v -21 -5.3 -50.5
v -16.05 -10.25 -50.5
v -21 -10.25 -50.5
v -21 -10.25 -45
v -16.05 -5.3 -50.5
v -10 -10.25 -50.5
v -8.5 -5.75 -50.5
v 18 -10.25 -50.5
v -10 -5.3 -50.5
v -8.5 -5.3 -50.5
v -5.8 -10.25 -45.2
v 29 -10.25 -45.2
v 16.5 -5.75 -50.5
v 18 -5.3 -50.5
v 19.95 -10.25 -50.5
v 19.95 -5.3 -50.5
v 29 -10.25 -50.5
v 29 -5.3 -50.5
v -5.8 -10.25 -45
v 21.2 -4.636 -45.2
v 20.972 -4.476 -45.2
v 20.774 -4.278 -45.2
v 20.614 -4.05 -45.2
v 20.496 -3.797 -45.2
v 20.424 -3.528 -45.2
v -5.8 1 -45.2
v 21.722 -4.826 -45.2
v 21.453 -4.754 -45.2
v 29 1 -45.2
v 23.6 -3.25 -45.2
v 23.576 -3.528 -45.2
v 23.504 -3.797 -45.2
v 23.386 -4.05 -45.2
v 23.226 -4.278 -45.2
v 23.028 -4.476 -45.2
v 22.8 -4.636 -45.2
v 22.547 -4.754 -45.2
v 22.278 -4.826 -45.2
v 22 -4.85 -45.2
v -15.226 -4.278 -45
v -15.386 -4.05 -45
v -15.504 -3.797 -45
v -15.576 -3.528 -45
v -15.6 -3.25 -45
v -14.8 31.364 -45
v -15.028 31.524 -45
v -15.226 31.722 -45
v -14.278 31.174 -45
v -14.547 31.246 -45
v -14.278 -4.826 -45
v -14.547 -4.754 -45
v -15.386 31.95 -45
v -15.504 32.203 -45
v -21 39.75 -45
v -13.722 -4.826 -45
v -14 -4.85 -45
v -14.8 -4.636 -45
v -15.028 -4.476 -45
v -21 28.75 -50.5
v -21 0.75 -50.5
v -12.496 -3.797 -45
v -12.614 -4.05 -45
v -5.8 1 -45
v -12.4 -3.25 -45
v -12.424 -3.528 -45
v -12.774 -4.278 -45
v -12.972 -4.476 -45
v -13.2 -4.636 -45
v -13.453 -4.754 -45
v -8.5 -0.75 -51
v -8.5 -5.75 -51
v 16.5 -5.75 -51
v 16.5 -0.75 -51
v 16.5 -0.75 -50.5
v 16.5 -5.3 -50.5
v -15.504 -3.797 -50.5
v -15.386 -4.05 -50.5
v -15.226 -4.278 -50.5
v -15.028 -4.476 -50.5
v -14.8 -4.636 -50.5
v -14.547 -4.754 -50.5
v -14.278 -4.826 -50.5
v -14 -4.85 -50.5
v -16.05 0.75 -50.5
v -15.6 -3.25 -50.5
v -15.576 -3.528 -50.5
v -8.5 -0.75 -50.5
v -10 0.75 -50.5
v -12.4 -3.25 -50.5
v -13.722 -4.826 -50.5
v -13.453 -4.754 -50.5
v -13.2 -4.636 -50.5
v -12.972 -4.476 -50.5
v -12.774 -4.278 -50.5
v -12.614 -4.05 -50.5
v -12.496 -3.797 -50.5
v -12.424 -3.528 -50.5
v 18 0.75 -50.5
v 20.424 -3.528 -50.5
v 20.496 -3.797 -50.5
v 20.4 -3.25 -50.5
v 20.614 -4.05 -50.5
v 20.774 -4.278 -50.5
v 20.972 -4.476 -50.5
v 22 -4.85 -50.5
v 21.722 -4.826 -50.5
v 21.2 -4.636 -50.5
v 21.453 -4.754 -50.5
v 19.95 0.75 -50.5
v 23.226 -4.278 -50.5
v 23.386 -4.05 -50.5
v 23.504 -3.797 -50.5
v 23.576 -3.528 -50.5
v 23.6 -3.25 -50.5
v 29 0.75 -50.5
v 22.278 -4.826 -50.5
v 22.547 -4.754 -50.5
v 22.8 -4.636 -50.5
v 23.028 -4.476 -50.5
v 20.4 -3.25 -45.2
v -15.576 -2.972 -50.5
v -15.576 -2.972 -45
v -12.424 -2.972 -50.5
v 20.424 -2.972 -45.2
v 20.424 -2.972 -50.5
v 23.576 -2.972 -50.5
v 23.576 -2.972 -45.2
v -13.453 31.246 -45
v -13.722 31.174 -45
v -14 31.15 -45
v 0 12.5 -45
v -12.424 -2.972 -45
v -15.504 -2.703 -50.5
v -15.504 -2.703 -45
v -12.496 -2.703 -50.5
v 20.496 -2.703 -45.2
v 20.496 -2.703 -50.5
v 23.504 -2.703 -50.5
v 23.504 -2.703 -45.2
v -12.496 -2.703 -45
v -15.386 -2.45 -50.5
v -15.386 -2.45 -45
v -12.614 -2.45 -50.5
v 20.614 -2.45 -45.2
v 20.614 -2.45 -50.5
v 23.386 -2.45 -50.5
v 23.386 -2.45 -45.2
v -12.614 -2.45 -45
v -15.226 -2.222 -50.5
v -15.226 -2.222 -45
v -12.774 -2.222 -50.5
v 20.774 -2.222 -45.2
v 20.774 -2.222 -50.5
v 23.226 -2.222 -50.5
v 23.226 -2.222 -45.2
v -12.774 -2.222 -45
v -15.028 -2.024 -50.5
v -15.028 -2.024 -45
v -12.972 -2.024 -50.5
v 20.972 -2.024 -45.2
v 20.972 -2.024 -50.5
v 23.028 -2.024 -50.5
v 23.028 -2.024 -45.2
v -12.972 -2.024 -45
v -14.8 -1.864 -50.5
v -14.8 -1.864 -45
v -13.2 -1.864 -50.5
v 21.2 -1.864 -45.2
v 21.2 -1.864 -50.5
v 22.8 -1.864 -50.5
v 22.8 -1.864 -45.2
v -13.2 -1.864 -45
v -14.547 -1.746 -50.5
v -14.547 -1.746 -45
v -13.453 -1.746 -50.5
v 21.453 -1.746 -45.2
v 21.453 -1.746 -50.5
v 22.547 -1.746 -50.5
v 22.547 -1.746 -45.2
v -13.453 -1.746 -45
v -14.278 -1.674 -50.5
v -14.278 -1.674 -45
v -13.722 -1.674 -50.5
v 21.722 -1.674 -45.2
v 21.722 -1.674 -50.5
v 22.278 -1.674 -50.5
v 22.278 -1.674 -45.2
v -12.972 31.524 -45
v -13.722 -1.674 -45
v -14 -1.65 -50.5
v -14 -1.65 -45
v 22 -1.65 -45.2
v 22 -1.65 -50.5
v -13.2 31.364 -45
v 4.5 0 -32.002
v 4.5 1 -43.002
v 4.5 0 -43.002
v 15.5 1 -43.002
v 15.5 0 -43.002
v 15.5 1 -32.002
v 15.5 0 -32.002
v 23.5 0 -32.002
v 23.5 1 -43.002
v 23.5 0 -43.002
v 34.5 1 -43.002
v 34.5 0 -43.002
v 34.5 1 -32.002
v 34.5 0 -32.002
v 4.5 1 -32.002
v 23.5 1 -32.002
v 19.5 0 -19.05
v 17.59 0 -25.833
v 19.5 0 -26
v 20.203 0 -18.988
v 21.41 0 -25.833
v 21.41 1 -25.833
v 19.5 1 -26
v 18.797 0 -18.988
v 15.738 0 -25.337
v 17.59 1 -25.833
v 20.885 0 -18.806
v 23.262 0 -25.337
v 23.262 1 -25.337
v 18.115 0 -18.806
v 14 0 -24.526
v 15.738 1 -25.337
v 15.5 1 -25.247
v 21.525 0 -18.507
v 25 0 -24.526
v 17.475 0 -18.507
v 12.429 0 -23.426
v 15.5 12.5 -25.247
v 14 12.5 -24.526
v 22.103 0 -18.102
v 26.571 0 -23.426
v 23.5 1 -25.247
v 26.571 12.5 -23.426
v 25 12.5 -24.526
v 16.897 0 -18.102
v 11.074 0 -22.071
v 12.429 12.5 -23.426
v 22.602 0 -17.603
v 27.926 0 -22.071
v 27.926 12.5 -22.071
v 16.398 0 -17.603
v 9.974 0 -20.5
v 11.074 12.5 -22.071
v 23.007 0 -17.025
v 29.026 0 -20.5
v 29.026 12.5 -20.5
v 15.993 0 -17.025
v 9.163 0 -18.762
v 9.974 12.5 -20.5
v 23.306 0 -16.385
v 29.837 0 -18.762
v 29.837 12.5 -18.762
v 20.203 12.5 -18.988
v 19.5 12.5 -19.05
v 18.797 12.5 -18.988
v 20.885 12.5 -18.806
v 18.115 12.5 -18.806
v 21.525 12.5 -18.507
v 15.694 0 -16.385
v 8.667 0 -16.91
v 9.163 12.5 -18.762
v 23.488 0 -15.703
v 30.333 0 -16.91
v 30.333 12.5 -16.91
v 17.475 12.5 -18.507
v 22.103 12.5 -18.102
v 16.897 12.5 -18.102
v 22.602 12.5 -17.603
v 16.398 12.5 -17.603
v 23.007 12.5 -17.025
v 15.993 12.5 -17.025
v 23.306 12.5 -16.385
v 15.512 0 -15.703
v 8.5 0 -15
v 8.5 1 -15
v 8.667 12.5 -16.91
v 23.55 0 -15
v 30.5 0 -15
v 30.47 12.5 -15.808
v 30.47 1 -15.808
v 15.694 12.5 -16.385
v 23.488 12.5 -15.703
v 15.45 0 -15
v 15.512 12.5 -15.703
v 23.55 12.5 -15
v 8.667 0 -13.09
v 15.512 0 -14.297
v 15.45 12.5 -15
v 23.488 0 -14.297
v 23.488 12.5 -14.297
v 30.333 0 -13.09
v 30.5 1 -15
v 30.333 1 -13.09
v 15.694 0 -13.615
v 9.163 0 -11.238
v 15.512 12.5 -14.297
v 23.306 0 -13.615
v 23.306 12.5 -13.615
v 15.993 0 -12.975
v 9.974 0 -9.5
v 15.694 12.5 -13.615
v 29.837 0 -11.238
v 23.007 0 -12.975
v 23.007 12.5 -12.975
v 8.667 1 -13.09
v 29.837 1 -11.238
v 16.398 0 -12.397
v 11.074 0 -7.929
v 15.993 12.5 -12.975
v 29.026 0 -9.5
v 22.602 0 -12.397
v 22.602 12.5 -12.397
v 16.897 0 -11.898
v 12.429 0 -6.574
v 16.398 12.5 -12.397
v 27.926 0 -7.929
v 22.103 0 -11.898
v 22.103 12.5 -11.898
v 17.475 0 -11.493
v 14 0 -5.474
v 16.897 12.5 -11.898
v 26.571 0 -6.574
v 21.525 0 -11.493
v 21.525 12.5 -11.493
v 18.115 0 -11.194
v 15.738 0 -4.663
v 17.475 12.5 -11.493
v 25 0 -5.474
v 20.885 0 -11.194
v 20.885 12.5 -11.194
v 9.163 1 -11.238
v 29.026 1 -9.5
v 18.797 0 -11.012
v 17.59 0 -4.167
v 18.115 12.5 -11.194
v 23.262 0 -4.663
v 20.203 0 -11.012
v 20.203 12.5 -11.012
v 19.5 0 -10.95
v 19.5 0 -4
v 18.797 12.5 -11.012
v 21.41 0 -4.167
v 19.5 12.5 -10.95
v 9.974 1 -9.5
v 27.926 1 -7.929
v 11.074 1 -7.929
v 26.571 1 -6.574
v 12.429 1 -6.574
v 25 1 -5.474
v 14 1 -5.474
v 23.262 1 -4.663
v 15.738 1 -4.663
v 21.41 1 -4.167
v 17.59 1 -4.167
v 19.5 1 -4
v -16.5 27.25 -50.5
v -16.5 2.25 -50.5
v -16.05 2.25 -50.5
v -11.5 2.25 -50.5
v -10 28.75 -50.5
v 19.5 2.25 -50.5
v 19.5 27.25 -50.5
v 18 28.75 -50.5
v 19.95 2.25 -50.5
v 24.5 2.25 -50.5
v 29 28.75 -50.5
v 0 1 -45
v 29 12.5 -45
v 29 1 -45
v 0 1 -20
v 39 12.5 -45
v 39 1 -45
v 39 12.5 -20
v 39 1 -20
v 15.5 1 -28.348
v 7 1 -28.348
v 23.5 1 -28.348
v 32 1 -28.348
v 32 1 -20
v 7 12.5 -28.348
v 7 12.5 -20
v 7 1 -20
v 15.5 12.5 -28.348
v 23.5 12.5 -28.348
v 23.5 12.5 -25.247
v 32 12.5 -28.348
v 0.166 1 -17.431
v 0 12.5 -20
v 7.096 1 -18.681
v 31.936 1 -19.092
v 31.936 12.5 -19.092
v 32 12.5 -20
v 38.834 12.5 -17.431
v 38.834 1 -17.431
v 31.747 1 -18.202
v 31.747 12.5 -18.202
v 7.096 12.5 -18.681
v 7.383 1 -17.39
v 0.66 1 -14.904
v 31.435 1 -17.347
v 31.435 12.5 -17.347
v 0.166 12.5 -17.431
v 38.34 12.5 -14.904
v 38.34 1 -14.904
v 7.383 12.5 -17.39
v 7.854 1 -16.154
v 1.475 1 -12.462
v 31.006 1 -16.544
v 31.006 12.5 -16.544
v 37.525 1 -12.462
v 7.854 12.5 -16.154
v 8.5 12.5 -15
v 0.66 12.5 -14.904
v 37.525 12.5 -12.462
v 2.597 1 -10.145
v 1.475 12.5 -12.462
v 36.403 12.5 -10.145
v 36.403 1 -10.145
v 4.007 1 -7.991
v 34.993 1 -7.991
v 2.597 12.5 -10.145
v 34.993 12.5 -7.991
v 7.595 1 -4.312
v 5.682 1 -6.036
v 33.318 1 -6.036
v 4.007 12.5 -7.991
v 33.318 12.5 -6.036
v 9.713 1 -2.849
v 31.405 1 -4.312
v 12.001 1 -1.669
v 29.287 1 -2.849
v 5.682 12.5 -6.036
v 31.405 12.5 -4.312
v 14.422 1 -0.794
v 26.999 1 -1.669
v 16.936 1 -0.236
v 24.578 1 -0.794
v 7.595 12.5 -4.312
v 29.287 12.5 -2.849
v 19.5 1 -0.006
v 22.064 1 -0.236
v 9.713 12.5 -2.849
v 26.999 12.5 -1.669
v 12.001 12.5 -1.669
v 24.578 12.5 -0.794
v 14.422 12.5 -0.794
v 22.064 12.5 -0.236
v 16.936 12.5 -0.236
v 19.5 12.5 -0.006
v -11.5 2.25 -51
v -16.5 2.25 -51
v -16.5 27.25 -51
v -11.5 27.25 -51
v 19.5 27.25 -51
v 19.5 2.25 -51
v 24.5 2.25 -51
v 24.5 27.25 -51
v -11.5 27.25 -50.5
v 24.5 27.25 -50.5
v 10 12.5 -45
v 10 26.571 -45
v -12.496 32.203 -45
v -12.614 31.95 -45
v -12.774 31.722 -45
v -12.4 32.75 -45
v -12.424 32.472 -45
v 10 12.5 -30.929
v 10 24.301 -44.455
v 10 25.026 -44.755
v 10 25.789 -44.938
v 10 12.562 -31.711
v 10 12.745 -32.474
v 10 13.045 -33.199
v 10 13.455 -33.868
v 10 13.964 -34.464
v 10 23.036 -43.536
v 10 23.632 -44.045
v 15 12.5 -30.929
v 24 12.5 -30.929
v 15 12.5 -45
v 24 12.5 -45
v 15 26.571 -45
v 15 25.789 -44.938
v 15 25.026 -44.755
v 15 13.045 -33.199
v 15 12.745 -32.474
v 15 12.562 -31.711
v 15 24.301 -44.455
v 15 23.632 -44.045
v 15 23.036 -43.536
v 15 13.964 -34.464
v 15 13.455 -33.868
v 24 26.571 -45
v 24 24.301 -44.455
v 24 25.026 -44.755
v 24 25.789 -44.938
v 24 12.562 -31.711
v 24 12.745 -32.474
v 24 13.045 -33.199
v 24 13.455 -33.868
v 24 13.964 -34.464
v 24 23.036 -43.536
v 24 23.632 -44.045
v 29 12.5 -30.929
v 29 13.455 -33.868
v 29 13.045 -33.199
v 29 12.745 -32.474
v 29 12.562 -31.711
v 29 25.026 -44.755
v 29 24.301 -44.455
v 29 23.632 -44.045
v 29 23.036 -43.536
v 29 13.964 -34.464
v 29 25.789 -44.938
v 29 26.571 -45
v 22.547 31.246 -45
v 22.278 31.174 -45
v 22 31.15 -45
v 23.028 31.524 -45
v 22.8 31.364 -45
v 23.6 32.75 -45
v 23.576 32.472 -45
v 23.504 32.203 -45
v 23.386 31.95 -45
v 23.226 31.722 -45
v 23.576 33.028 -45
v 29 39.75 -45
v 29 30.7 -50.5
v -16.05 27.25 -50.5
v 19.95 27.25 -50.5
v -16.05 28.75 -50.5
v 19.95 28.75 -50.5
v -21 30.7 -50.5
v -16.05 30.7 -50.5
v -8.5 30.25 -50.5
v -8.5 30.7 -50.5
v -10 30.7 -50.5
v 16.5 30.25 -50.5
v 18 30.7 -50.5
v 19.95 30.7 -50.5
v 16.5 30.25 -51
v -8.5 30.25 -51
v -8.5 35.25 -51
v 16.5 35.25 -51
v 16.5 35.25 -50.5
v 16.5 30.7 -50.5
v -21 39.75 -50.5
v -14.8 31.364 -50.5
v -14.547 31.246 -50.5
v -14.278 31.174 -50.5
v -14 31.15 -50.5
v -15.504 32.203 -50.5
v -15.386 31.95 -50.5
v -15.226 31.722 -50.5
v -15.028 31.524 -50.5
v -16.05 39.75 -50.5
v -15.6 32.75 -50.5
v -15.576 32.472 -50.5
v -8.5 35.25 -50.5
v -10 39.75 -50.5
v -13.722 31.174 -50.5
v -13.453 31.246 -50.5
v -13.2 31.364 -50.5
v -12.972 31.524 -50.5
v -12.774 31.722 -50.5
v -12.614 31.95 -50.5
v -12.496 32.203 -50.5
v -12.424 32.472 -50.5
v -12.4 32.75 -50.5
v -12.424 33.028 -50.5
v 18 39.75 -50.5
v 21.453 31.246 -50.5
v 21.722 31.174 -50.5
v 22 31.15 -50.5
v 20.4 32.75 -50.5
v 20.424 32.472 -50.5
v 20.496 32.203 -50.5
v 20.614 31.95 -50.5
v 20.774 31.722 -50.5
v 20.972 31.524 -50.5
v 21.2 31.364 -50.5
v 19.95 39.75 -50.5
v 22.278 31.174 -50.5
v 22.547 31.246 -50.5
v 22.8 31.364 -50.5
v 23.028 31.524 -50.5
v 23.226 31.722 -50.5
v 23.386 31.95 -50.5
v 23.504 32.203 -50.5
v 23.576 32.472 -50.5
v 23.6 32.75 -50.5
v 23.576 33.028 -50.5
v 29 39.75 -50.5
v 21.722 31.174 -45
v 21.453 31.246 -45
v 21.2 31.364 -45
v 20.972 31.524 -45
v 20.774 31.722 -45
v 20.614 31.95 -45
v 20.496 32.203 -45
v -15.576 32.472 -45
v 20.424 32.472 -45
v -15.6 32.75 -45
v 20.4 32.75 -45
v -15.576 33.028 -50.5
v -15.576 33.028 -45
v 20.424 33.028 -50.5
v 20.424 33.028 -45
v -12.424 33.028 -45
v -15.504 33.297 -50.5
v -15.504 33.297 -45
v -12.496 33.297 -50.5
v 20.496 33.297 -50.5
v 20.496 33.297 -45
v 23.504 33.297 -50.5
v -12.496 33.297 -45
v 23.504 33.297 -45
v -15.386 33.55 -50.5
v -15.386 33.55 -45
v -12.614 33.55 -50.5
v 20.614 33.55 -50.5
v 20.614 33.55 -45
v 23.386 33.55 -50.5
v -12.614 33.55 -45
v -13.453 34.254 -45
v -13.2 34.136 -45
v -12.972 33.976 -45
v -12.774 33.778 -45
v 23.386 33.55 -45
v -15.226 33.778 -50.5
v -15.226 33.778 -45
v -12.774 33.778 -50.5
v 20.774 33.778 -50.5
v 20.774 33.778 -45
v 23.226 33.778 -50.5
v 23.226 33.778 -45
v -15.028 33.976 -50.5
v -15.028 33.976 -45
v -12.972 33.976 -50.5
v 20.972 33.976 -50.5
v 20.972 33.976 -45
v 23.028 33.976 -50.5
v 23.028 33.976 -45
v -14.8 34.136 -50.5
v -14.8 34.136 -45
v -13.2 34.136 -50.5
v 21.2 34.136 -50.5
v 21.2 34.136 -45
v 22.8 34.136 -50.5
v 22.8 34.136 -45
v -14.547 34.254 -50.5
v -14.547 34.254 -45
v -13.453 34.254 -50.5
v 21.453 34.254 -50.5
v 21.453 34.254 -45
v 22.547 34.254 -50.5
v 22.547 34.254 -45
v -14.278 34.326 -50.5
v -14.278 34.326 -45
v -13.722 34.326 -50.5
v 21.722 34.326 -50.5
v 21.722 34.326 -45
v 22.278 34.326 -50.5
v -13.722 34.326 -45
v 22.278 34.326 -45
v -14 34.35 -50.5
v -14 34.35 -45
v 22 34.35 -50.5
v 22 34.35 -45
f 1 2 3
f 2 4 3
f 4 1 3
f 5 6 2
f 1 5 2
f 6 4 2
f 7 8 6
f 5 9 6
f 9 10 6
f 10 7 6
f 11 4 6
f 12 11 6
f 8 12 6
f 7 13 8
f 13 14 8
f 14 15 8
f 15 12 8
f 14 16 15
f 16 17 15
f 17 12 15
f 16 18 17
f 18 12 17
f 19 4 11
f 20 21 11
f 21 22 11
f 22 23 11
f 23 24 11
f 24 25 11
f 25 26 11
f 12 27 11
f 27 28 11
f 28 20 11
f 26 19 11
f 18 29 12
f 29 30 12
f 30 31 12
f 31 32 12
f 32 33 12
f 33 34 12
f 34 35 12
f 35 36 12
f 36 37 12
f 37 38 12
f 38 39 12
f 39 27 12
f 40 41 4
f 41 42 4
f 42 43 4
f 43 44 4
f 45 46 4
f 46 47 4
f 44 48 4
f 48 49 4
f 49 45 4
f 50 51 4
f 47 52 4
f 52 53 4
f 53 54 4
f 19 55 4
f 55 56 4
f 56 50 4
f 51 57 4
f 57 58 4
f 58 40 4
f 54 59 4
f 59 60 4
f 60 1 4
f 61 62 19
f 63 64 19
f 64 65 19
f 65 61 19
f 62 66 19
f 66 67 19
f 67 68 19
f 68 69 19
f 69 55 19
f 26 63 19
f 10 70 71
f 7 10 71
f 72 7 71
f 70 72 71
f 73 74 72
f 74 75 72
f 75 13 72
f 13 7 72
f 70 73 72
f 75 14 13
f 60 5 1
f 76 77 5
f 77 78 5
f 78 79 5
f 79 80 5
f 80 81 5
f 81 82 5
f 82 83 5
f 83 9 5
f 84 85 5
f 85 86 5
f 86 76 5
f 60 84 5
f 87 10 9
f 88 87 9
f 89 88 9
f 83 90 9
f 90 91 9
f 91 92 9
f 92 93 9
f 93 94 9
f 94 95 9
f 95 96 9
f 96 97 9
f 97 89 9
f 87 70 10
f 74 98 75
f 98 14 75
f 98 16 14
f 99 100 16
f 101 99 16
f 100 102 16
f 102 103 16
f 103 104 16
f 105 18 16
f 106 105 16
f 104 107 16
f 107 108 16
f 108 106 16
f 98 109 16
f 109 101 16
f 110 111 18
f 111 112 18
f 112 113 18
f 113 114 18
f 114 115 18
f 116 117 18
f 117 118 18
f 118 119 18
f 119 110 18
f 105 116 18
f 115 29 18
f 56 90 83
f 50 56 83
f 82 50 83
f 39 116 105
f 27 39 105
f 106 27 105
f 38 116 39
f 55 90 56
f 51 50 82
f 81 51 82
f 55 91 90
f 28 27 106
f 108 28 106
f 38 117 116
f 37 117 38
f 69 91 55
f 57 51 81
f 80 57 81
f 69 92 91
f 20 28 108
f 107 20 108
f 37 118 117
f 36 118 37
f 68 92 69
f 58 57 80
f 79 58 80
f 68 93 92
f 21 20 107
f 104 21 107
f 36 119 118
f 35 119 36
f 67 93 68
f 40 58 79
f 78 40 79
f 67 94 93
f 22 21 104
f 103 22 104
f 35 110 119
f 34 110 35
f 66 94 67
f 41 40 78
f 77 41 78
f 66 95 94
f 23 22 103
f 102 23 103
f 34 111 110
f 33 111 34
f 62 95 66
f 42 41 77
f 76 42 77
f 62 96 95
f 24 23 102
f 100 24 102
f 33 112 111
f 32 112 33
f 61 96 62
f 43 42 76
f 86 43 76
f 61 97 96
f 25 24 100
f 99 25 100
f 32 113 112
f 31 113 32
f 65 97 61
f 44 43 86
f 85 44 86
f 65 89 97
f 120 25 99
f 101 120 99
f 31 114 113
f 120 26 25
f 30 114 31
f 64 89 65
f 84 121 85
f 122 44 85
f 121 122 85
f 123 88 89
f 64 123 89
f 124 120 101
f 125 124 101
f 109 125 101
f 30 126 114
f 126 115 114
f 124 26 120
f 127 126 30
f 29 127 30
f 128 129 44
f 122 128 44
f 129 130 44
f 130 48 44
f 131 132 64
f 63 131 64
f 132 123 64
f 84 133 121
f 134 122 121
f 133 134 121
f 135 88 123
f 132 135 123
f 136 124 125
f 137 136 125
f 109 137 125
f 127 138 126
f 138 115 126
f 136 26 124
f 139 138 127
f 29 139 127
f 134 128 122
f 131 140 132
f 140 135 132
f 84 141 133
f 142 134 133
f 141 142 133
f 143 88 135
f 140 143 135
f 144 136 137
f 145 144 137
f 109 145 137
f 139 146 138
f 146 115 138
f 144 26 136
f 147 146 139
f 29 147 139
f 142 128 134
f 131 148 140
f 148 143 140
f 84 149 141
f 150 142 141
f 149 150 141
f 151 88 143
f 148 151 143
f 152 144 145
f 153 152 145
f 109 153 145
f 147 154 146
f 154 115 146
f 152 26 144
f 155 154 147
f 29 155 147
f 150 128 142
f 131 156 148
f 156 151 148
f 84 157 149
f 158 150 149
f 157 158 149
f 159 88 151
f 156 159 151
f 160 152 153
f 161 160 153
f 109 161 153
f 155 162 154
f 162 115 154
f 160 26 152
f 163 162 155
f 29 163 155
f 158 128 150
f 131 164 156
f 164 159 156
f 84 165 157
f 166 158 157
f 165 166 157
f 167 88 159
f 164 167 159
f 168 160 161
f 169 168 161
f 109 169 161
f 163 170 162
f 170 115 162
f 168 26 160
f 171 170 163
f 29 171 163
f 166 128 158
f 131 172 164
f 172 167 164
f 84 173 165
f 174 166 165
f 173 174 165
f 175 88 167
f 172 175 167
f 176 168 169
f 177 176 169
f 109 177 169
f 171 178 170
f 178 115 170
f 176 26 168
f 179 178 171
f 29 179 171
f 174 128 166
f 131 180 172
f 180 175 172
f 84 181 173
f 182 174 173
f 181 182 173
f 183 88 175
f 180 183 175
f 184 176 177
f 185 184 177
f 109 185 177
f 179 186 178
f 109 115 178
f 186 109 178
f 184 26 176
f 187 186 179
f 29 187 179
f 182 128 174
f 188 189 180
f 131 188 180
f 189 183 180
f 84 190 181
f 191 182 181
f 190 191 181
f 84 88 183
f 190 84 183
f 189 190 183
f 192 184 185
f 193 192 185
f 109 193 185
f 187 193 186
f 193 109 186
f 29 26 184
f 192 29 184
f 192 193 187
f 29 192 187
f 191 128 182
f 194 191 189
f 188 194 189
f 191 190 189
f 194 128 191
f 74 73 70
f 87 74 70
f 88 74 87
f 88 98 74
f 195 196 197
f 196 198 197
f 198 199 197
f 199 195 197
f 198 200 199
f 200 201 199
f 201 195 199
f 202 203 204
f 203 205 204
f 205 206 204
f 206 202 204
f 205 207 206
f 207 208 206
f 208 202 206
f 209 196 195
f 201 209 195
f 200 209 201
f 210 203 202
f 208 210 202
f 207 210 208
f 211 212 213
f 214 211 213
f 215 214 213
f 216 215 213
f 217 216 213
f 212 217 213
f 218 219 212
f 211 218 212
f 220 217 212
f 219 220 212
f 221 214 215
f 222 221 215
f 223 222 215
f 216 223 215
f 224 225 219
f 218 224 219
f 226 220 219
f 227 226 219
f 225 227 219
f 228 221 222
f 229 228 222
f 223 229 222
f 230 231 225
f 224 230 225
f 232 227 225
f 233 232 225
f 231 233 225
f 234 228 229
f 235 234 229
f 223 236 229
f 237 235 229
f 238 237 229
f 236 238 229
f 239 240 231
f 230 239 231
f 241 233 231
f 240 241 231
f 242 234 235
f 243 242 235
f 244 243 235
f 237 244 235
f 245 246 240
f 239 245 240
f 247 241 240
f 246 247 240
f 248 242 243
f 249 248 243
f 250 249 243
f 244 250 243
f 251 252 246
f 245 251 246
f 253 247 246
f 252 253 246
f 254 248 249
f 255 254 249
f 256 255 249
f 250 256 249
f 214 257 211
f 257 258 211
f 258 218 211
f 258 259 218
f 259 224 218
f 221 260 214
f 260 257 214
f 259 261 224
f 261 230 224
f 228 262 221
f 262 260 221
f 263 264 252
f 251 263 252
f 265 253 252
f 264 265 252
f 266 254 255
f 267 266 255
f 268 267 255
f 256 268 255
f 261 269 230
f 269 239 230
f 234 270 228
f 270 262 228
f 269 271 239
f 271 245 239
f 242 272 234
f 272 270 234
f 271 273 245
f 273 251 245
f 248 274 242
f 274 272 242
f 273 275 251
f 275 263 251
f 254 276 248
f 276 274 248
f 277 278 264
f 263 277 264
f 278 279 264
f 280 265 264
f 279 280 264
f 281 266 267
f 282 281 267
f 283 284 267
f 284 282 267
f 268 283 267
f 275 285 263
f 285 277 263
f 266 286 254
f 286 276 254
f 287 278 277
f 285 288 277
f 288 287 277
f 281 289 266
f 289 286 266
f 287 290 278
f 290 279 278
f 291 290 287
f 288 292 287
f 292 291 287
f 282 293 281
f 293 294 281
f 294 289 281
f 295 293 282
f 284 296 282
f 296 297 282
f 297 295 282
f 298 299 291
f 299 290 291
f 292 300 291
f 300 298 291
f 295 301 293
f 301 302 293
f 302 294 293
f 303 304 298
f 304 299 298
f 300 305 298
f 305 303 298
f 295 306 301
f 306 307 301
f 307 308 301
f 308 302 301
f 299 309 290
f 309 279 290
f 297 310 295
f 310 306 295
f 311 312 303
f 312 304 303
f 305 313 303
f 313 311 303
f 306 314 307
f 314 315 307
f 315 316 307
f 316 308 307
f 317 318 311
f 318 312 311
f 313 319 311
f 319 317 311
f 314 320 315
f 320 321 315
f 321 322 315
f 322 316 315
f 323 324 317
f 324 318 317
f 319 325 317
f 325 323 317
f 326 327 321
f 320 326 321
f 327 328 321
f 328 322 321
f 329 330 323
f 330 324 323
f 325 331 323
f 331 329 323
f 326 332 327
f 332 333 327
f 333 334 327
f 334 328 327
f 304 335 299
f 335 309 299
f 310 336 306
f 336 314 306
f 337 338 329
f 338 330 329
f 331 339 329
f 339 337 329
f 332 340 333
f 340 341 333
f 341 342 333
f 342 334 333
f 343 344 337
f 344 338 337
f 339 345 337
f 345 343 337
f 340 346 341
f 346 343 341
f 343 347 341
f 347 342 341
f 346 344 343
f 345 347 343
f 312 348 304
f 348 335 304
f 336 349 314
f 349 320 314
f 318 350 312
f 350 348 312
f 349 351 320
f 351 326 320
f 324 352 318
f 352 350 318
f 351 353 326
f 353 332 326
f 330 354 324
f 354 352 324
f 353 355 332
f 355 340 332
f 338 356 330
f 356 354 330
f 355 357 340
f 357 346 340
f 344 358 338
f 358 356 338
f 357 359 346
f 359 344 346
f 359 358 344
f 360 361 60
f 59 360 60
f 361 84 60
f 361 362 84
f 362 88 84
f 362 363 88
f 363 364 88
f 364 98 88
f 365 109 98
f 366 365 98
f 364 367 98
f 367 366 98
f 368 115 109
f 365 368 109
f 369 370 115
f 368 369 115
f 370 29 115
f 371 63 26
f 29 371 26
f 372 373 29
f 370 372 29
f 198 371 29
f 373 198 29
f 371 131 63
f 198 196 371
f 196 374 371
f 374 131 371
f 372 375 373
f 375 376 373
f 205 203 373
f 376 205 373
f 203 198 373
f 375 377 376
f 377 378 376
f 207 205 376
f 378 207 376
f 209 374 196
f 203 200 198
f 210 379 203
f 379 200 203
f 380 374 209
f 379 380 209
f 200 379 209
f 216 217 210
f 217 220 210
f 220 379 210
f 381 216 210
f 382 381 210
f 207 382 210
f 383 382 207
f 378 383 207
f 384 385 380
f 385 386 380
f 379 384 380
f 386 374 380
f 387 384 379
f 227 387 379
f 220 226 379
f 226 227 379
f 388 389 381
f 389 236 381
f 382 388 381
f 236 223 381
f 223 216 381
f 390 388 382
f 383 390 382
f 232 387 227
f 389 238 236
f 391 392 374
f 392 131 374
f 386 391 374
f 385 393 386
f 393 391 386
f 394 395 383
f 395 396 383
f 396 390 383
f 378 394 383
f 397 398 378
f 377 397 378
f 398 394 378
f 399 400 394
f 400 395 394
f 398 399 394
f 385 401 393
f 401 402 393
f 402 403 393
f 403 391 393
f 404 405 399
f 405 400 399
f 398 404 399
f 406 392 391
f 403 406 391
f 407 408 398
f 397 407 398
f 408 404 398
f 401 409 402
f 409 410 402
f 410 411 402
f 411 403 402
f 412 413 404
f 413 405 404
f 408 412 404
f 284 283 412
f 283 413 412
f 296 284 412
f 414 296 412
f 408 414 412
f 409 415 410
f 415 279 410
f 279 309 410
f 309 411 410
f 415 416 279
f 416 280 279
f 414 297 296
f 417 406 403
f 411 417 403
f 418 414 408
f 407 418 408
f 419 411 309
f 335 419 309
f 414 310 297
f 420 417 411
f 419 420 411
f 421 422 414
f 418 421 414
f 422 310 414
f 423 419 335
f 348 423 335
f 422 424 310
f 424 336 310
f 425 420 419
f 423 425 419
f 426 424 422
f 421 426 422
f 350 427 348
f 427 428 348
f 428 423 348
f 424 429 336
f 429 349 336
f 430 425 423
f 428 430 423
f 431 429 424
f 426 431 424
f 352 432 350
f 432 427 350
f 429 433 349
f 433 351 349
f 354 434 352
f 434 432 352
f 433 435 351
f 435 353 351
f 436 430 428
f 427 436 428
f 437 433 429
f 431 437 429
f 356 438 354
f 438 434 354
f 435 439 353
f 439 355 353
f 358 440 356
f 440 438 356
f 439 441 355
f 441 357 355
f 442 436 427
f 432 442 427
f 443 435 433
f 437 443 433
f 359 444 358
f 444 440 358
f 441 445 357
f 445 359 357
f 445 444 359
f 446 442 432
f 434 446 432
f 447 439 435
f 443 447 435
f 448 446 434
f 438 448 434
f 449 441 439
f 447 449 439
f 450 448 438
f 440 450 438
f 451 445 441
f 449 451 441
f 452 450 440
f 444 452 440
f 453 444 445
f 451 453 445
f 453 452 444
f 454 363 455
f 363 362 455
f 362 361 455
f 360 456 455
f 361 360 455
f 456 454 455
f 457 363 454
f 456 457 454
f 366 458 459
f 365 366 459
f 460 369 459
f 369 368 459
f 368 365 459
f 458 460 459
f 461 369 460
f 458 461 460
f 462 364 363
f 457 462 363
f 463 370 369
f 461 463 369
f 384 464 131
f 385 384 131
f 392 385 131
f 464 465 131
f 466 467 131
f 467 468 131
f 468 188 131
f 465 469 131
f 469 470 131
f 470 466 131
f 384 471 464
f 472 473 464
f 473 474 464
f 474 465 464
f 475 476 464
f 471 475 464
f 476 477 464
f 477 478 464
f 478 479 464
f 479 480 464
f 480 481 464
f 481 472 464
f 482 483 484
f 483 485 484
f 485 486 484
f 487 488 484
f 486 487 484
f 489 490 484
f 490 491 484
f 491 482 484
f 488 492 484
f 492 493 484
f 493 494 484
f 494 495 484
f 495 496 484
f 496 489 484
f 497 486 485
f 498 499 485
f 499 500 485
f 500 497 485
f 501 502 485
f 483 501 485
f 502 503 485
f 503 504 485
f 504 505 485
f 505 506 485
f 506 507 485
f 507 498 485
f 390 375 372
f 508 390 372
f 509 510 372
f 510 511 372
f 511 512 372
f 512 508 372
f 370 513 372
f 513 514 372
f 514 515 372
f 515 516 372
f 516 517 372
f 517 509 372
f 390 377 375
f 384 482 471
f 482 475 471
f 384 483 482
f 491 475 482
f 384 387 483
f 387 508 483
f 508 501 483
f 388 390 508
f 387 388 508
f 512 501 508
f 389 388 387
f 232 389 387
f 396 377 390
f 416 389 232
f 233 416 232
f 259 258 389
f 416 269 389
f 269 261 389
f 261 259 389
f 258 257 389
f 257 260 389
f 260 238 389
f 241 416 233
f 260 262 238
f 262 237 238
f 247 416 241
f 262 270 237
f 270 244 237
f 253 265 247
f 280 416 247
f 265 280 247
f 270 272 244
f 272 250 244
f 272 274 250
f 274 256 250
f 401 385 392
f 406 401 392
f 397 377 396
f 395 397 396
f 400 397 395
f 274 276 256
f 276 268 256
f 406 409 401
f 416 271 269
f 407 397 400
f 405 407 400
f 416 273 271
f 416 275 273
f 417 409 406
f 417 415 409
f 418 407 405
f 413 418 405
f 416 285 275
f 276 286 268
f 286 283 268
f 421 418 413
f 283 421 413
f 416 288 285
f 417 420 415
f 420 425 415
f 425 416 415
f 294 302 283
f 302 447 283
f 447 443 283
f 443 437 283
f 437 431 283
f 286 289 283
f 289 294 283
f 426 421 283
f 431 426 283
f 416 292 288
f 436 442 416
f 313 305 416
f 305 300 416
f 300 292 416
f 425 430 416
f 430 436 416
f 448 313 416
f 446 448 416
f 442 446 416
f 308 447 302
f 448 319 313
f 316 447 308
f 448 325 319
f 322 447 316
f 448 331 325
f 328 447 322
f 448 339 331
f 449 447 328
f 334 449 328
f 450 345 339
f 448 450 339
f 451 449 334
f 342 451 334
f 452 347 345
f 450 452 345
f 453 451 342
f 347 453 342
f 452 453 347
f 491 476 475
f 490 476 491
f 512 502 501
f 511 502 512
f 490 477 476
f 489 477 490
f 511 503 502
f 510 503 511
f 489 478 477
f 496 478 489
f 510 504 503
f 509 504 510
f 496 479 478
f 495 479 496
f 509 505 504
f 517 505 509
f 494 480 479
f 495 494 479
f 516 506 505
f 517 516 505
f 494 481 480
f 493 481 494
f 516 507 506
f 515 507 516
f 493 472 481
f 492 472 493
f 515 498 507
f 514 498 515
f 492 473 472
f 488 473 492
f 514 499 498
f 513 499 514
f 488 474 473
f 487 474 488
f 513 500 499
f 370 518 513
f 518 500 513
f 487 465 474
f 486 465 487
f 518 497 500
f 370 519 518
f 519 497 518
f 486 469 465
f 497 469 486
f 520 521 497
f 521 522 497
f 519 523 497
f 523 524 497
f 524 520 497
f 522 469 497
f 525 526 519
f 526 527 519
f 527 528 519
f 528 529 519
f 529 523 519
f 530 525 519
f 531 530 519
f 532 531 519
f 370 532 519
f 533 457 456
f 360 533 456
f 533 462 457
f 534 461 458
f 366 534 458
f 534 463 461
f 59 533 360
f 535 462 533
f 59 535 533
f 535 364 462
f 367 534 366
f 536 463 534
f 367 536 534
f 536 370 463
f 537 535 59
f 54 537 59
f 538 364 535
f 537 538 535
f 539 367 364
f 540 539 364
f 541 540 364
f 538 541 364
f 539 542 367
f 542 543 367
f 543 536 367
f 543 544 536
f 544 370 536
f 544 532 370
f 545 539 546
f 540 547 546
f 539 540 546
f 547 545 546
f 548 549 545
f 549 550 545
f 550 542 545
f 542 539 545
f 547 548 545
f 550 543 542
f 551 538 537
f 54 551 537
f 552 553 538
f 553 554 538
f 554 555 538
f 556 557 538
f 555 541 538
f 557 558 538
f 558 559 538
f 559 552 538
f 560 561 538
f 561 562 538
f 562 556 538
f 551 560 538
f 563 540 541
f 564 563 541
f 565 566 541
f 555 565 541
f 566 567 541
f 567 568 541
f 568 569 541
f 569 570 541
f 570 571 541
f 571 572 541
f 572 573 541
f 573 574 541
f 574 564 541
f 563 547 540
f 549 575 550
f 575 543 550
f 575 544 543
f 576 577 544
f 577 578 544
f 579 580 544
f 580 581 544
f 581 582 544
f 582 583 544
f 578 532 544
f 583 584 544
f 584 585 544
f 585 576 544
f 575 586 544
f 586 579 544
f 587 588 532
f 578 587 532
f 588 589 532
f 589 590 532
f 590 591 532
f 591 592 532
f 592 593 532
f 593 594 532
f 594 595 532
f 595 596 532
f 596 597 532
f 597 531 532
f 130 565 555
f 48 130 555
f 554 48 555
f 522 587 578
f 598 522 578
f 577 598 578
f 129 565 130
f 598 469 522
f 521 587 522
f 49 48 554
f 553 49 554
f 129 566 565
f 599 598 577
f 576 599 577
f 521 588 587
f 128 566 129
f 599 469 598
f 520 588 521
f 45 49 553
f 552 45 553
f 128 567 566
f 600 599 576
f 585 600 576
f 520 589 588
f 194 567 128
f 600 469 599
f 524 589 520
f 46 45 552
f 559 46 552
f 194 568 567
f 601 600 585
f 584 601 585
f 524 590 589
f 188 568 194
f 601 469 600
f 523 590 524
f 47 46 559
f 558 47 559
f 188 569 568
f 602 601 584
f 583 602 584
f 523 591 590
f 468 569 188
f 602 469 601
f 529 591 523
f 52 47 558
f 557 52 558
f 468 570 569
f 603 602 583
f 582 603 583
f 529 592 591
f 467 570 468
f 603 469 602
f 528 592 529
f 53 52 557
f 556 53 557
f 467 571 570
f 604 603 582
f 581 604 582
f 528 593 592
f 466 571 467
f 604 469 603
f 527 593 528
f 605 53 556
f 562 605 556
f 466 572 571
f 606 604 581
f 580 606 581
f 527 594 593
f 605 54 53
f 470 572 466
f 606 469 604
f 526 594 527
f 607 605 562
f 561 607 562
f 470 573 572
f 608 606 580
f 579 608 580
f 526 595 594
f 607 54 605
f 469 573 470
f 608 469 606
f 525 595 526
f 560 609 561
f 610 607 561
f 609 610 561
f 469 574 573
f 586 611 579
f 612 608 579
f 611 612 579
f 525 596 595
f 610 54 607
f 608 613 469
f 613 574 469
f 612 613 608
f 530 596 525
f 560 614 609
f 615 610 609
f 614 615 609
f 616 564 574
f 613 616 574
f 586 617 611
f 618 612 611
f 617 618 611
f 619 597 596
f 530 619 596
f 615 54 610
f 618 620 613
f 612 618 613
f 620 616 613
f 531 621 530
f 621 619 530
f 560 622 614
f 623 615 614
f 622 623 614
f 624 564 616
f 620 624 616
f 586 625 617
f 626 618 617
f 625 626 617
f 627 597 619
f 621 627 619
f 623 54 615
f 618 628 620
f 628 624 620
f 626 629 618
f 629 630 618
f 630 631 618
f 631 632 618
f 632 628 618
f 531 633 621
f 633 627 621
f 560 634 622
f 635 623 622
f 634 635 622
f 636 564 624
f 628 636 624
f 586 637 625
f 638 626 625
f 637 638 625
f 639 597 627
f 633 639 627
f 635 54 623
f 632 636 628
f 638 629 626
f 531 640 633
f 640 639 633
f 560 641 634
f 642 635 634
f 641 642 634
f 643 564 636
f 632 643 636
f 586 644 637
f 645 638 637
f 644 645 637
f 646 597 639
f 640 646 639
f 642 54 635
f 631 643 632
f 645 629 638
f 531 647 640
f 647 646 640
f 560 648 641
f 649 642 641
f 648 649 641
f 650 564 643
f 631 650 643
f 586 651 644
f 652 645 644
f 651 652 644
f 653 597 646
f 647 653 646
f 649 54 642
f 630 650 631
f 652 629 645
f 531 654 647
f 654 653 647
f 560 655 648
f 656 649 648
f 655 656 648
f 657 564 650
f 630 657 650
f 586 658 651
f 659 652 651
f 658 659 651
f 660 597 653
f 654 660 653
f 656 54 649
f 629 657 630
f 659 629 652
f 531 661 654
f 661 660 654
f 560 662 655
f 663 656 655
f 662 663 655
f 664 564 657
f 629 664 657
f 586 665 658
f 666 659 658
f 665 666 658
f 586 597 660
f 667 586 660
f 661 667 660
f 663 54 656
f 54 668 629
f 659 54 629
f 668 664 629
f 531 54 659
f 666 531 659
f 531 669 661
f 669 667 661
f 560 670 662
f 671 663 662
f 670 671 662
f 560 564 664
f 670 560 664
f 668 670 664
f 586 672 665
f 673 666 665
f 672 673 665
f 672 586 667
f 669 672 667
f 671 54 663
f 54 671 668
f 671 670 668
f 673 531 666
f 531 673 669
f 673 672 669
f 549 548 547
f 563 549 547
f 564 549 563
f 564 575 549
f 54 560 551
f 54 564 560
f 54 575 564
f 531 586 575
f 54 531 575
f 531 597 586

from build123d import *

# Parameters (mm, degrees)
SKETCH1_W           = 39
SKETCH1_H           = 45
BOSS_EXTRUDE1_DEPTH = 12.5
SKETCH2_R           = 4.05
CUT_EXTRUDE1_DEPTH  = 61.846117378
SKETCH3_W           = 50
SKETCH3_H           = 50
BOSS_EXTRUDE2_DEPTH = 5.5
BOSS_EXTRUDE3_START = -10
BOSS_EXTRUDE3_DEPTH = 5
LPATTERN1_COUNT     = 2
LPATTERN1_PITCH     = 14
FILLET1_R           = 5
SKETCH5_R           = 1.6
CUT_EXTRUDE2_DEPTH  = 76.175212005
FILLET2_R           = 20
CUT_EXTRUDE3_DEPTH  = 70.381643826
CUT_EXTRUDE4_START  = -1
SKETCH7_W           = 39
SKETCH7_H           = 50.063664736
SKETCH7_R           = 11
SKETCH7_W_2         = 11
SKETCH7_H_2         = 11
CUT_EXTRUDE4_DEPTH  = 1
SKETCH8_W           = 25
SKETCH8_H           = 5
SKETCH8_W_2         = 5
SKETCH8_H_2         = 25
BOSS_EXTRUDE4_DEPTH = 0.5
SKETCH9_W           = 34.8
SKETCH9_H           = 11.25
CUT_EXTRUDE5_DEPTH  = 0.2


with BuildPart() as part:
    # Sketch1 → Boss-Extrude1 (new body)
    with BuildSketch(Plane(origin=(0, 0, 0), x_dir=(1, 0, 0), z_dir=(0, 1, 0))):
        with Locations((19.5, 22.5)):
            Rectangle(SKETCH1_W, SKETCH1_H)
    extrude(amount=BOSS_EXTRUDE1_DEPTH)

    # Sketch2 → Cut-Extrude1 (cut, through all)
    with BuildSketch(Plane(origin=(0, 12.5, 0), x_dir=(1, 0, 0), z_dir=(0, 1, 0))):
        with Locations(Location((19.5, 15, 0), (0, 0, 270))):
            Circle(SKETCH2_R)
    extrude(amount=-CUT_EXTRUDE1_DEPTH, mode=Mode.SUBTRACT)

    # Sketch3 → Boss-Extrude2 (add)
    with BuildSketch(Plane(origin=(0, 0, -45), x_dir=(-1, 0, 0), z_dir=(0, 0, -1))):
        with Locations((-4, 14.75)):
            Rectangle(SKETCH3_W, SKETCH3_H)
    extrude(amount=BOSS_EXTRUDE2_DEPTH)

    # Sketch4 → Boss-Extrude3 (add)
    with BuildSketch(Plane(origin=(39, 0, 0), x_dir=(0, 0, -1), z_dir=(1, 0, 0)).offset(BOSS_EXTRUDE3_START)):
        Polygon((33, 12.5), (45, 24.5), (45, 12.5), align=None)
    boss_extrude3 = extrude(amount=-BOSS_EXTRUDE3_DEPTH)

    # LPattern1: Boss-Extrude3 ×2
    with Locations(*[(-i * LPATTERN1_PITCH, 0, 0) for i in range(1, LPATTERN1_COUNT)]):
        add(boss_extrude3)

    # Fillet1
    fillet1_edges = [part.edges().sort_by_distance(p)[0] for p in [
        (26.5, 12.5, -33),
        (26.5, 24.5, -45),
        (12.5, 12.5, -33),
        (12.5, 24.5, -45),
    ]]
    fillet(fillet1_edges, radius=FILLET1_R)

    # Sketch5 → Cut-Extrude2 (cut, through all)
    with BuildSketch(Plane(origin=(0, 0, -50.5), x_dir=(-1, 0, 0), z_dir=(0, 0, -1))):
        with Locations((-22, 32.75)):
            Circle(SKETCH5_R)
        with Locations((14, 32.75)):
            Circle(SKETCH5_R)
        with Locations((14, -3.25)):
            Circle(SKETCH5_R)
        with Locations((-22, -3.25)):
            Circle(SKETCH5_R)
    extrude(amount=-CUT_EXTRUDE2_DEPTH, mode=Mode.SUBTRACT)

    # Fillet2
    # the kernel refuses this fillet: 20 mm, written as the material it takes off along each edge
    with BuildSketch(Plane(origin=(0, -50, 0), x_dir=(0, 0, -1), z_dir=(0, 1, 0)), Plane(origin=(39, -50, 0), x_dir=(-1, 0, 0), z_dir=(0, 1, 0))) as fillet2_piece_1:
        with BuildLine():
            CenterArc((FILLET2_R, -FILLET2_R), FILLET2_R, 90, 90)
            Line((0, -FILLET2_R), (0, 0))
            Line((0, 0), (FILLET2_R, 0))
        make_face()
    extrude(amount=112.5, mode=Mode.SUBTRACT)

    # Sketch6 → Cut-Extrude3 (cut, through all)
    with BuildSketch(Plane(origin=(0, 12.5, 0), x_dir=(1, 0, 0), z_dir=(0, 1, 0))):
        with BuildLine():
            Line((7, 20), (7, 28.347560338))
            Line((7, 28.347560338), (15.5, 28.347560338))
            Line((15.5, 28.347560338), (15.5, 25.246950766))
            ThreePointArc((15.5, 25.246950766), (10.417048938, 21.204836823), (8.5, 15))
            ThreePointArc((8.5, 15), (7.383077909, 17.389923373), (7, 20))
        make_face()
        with BuildLine():
            Line((23.5, 25.246950766), (23.5, 28.347560338))
            Line((23.5, 28.347560338), (32, 28.347560338))
            Line((32, 28.347560338), (32, 20))
            ThreePointArc((32, 20), (31.605614865, 17.768951725), (30.47026085, 15.808317311))
            ThreePointArc((30.47026085, 15.808317311), (28.348679441, 21.534590434), (23.5, 25.246950766))
        make_face()
    extrude(amount=-CUT_EXTRUDE3_DEPTH, mode=Mode.SUBTRACT)

    # Sketch7 → Cut-Extrude4 (cut)
    with BuildSketch(Plane.XZ.offset(CUT_EXTRUDE4_START)):
        with Locations((19.5, -19.968167632)):
            Rectangle(SKETCH7_W, SKETCH7_H)
        with Locations(Location((19.5, -15, 0), (0, 0, 180))):
            Circle(SKETCH7_R, mode=Mode.SUBTRACT)
        with Locations((10, -37.501795484)):
            Rectangle(SKETCH7_W_2, SKETCH7_H_2, mode=Mode.SUBTRACT)
        with Locations((29, -37.501795484)):
            Rectangle(SKETCH7_W_2, SKETCH7_H_2, mode=Mode.SUBTRACT)
    extrude(amount=CUT_EXTRUDE4_DEPTH, mode=Mode.SUBTRACT)

    # Sketch8 → Boss-Extrude4 (add)
    with BuildSketch(Plane(origin=(0, 0, -50.5), x_dir=(-1, 0, 0), z_dir=(0, 0, -1))):
        with Locations((-4, 32.75)):
            Rectangle(SKETCH8_W, SKETCH8_H)
        with Locations((14, 14.75)):
            Rectangle(SKETCH8_W_2, SKETCH8_H_2)
        with Locations((-4, -3.25)):
            Rectangle(SKETCH8_W, SKETCH8_H)
        with Locations((-22, 14.75)):
            Rectangle(SKETCH8_W_2, SKETCH8_H_2)
    extrude(amount=BOSS_EXTRUDE4_DEPTH)

    # Sketch9 → Cut-Extrude5 (cut)
    with BuildSketch(Plane.XY.offset(-45)):
        with Locations((11.6, -4.625)):
            Rectangle(SKETCH9_W, SKETCH9_H)
    extrude(amount=-CUT_EXTRUDE5_DEPTH, mode=Mode.SUBTRACT)


solid = part.part
